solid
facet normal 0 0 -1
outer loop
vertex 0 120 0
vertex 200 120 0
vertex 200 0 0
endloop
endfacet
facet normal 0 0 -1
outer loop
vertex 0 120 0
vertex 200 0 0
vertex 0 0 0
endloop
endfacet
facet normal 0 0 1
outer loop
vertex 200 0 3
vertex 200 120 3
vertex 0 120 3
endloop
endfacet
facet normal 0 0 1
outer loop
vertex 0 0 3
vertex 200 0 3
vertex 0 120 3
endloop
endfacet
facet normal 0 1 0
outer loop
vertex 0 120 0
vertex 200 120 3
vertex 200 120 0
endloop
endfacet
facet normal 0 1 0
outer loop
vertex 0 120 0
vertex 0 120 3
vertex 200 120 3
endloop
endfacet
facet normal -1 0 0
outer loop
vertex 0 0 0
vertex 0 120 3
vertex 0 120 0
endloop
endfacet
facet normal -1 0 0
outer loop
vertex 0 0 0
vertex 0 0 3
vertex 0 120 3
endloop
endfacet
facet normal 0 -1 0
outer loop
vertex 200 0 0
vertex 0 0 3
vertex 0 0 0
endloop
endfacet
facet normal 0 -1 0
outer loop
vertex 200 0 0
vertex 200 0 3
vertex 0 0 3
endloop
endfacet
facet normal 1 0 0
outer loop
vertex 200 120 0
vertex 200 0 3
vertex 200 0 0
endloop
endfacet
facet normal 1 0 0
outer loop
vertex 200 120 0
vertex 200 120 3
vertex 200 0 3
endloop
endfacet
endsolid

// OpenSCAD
linear_extrude(3) difference(){ polygon([[0, 0], [200, 0], [200, 120], [0, 120]]);}
